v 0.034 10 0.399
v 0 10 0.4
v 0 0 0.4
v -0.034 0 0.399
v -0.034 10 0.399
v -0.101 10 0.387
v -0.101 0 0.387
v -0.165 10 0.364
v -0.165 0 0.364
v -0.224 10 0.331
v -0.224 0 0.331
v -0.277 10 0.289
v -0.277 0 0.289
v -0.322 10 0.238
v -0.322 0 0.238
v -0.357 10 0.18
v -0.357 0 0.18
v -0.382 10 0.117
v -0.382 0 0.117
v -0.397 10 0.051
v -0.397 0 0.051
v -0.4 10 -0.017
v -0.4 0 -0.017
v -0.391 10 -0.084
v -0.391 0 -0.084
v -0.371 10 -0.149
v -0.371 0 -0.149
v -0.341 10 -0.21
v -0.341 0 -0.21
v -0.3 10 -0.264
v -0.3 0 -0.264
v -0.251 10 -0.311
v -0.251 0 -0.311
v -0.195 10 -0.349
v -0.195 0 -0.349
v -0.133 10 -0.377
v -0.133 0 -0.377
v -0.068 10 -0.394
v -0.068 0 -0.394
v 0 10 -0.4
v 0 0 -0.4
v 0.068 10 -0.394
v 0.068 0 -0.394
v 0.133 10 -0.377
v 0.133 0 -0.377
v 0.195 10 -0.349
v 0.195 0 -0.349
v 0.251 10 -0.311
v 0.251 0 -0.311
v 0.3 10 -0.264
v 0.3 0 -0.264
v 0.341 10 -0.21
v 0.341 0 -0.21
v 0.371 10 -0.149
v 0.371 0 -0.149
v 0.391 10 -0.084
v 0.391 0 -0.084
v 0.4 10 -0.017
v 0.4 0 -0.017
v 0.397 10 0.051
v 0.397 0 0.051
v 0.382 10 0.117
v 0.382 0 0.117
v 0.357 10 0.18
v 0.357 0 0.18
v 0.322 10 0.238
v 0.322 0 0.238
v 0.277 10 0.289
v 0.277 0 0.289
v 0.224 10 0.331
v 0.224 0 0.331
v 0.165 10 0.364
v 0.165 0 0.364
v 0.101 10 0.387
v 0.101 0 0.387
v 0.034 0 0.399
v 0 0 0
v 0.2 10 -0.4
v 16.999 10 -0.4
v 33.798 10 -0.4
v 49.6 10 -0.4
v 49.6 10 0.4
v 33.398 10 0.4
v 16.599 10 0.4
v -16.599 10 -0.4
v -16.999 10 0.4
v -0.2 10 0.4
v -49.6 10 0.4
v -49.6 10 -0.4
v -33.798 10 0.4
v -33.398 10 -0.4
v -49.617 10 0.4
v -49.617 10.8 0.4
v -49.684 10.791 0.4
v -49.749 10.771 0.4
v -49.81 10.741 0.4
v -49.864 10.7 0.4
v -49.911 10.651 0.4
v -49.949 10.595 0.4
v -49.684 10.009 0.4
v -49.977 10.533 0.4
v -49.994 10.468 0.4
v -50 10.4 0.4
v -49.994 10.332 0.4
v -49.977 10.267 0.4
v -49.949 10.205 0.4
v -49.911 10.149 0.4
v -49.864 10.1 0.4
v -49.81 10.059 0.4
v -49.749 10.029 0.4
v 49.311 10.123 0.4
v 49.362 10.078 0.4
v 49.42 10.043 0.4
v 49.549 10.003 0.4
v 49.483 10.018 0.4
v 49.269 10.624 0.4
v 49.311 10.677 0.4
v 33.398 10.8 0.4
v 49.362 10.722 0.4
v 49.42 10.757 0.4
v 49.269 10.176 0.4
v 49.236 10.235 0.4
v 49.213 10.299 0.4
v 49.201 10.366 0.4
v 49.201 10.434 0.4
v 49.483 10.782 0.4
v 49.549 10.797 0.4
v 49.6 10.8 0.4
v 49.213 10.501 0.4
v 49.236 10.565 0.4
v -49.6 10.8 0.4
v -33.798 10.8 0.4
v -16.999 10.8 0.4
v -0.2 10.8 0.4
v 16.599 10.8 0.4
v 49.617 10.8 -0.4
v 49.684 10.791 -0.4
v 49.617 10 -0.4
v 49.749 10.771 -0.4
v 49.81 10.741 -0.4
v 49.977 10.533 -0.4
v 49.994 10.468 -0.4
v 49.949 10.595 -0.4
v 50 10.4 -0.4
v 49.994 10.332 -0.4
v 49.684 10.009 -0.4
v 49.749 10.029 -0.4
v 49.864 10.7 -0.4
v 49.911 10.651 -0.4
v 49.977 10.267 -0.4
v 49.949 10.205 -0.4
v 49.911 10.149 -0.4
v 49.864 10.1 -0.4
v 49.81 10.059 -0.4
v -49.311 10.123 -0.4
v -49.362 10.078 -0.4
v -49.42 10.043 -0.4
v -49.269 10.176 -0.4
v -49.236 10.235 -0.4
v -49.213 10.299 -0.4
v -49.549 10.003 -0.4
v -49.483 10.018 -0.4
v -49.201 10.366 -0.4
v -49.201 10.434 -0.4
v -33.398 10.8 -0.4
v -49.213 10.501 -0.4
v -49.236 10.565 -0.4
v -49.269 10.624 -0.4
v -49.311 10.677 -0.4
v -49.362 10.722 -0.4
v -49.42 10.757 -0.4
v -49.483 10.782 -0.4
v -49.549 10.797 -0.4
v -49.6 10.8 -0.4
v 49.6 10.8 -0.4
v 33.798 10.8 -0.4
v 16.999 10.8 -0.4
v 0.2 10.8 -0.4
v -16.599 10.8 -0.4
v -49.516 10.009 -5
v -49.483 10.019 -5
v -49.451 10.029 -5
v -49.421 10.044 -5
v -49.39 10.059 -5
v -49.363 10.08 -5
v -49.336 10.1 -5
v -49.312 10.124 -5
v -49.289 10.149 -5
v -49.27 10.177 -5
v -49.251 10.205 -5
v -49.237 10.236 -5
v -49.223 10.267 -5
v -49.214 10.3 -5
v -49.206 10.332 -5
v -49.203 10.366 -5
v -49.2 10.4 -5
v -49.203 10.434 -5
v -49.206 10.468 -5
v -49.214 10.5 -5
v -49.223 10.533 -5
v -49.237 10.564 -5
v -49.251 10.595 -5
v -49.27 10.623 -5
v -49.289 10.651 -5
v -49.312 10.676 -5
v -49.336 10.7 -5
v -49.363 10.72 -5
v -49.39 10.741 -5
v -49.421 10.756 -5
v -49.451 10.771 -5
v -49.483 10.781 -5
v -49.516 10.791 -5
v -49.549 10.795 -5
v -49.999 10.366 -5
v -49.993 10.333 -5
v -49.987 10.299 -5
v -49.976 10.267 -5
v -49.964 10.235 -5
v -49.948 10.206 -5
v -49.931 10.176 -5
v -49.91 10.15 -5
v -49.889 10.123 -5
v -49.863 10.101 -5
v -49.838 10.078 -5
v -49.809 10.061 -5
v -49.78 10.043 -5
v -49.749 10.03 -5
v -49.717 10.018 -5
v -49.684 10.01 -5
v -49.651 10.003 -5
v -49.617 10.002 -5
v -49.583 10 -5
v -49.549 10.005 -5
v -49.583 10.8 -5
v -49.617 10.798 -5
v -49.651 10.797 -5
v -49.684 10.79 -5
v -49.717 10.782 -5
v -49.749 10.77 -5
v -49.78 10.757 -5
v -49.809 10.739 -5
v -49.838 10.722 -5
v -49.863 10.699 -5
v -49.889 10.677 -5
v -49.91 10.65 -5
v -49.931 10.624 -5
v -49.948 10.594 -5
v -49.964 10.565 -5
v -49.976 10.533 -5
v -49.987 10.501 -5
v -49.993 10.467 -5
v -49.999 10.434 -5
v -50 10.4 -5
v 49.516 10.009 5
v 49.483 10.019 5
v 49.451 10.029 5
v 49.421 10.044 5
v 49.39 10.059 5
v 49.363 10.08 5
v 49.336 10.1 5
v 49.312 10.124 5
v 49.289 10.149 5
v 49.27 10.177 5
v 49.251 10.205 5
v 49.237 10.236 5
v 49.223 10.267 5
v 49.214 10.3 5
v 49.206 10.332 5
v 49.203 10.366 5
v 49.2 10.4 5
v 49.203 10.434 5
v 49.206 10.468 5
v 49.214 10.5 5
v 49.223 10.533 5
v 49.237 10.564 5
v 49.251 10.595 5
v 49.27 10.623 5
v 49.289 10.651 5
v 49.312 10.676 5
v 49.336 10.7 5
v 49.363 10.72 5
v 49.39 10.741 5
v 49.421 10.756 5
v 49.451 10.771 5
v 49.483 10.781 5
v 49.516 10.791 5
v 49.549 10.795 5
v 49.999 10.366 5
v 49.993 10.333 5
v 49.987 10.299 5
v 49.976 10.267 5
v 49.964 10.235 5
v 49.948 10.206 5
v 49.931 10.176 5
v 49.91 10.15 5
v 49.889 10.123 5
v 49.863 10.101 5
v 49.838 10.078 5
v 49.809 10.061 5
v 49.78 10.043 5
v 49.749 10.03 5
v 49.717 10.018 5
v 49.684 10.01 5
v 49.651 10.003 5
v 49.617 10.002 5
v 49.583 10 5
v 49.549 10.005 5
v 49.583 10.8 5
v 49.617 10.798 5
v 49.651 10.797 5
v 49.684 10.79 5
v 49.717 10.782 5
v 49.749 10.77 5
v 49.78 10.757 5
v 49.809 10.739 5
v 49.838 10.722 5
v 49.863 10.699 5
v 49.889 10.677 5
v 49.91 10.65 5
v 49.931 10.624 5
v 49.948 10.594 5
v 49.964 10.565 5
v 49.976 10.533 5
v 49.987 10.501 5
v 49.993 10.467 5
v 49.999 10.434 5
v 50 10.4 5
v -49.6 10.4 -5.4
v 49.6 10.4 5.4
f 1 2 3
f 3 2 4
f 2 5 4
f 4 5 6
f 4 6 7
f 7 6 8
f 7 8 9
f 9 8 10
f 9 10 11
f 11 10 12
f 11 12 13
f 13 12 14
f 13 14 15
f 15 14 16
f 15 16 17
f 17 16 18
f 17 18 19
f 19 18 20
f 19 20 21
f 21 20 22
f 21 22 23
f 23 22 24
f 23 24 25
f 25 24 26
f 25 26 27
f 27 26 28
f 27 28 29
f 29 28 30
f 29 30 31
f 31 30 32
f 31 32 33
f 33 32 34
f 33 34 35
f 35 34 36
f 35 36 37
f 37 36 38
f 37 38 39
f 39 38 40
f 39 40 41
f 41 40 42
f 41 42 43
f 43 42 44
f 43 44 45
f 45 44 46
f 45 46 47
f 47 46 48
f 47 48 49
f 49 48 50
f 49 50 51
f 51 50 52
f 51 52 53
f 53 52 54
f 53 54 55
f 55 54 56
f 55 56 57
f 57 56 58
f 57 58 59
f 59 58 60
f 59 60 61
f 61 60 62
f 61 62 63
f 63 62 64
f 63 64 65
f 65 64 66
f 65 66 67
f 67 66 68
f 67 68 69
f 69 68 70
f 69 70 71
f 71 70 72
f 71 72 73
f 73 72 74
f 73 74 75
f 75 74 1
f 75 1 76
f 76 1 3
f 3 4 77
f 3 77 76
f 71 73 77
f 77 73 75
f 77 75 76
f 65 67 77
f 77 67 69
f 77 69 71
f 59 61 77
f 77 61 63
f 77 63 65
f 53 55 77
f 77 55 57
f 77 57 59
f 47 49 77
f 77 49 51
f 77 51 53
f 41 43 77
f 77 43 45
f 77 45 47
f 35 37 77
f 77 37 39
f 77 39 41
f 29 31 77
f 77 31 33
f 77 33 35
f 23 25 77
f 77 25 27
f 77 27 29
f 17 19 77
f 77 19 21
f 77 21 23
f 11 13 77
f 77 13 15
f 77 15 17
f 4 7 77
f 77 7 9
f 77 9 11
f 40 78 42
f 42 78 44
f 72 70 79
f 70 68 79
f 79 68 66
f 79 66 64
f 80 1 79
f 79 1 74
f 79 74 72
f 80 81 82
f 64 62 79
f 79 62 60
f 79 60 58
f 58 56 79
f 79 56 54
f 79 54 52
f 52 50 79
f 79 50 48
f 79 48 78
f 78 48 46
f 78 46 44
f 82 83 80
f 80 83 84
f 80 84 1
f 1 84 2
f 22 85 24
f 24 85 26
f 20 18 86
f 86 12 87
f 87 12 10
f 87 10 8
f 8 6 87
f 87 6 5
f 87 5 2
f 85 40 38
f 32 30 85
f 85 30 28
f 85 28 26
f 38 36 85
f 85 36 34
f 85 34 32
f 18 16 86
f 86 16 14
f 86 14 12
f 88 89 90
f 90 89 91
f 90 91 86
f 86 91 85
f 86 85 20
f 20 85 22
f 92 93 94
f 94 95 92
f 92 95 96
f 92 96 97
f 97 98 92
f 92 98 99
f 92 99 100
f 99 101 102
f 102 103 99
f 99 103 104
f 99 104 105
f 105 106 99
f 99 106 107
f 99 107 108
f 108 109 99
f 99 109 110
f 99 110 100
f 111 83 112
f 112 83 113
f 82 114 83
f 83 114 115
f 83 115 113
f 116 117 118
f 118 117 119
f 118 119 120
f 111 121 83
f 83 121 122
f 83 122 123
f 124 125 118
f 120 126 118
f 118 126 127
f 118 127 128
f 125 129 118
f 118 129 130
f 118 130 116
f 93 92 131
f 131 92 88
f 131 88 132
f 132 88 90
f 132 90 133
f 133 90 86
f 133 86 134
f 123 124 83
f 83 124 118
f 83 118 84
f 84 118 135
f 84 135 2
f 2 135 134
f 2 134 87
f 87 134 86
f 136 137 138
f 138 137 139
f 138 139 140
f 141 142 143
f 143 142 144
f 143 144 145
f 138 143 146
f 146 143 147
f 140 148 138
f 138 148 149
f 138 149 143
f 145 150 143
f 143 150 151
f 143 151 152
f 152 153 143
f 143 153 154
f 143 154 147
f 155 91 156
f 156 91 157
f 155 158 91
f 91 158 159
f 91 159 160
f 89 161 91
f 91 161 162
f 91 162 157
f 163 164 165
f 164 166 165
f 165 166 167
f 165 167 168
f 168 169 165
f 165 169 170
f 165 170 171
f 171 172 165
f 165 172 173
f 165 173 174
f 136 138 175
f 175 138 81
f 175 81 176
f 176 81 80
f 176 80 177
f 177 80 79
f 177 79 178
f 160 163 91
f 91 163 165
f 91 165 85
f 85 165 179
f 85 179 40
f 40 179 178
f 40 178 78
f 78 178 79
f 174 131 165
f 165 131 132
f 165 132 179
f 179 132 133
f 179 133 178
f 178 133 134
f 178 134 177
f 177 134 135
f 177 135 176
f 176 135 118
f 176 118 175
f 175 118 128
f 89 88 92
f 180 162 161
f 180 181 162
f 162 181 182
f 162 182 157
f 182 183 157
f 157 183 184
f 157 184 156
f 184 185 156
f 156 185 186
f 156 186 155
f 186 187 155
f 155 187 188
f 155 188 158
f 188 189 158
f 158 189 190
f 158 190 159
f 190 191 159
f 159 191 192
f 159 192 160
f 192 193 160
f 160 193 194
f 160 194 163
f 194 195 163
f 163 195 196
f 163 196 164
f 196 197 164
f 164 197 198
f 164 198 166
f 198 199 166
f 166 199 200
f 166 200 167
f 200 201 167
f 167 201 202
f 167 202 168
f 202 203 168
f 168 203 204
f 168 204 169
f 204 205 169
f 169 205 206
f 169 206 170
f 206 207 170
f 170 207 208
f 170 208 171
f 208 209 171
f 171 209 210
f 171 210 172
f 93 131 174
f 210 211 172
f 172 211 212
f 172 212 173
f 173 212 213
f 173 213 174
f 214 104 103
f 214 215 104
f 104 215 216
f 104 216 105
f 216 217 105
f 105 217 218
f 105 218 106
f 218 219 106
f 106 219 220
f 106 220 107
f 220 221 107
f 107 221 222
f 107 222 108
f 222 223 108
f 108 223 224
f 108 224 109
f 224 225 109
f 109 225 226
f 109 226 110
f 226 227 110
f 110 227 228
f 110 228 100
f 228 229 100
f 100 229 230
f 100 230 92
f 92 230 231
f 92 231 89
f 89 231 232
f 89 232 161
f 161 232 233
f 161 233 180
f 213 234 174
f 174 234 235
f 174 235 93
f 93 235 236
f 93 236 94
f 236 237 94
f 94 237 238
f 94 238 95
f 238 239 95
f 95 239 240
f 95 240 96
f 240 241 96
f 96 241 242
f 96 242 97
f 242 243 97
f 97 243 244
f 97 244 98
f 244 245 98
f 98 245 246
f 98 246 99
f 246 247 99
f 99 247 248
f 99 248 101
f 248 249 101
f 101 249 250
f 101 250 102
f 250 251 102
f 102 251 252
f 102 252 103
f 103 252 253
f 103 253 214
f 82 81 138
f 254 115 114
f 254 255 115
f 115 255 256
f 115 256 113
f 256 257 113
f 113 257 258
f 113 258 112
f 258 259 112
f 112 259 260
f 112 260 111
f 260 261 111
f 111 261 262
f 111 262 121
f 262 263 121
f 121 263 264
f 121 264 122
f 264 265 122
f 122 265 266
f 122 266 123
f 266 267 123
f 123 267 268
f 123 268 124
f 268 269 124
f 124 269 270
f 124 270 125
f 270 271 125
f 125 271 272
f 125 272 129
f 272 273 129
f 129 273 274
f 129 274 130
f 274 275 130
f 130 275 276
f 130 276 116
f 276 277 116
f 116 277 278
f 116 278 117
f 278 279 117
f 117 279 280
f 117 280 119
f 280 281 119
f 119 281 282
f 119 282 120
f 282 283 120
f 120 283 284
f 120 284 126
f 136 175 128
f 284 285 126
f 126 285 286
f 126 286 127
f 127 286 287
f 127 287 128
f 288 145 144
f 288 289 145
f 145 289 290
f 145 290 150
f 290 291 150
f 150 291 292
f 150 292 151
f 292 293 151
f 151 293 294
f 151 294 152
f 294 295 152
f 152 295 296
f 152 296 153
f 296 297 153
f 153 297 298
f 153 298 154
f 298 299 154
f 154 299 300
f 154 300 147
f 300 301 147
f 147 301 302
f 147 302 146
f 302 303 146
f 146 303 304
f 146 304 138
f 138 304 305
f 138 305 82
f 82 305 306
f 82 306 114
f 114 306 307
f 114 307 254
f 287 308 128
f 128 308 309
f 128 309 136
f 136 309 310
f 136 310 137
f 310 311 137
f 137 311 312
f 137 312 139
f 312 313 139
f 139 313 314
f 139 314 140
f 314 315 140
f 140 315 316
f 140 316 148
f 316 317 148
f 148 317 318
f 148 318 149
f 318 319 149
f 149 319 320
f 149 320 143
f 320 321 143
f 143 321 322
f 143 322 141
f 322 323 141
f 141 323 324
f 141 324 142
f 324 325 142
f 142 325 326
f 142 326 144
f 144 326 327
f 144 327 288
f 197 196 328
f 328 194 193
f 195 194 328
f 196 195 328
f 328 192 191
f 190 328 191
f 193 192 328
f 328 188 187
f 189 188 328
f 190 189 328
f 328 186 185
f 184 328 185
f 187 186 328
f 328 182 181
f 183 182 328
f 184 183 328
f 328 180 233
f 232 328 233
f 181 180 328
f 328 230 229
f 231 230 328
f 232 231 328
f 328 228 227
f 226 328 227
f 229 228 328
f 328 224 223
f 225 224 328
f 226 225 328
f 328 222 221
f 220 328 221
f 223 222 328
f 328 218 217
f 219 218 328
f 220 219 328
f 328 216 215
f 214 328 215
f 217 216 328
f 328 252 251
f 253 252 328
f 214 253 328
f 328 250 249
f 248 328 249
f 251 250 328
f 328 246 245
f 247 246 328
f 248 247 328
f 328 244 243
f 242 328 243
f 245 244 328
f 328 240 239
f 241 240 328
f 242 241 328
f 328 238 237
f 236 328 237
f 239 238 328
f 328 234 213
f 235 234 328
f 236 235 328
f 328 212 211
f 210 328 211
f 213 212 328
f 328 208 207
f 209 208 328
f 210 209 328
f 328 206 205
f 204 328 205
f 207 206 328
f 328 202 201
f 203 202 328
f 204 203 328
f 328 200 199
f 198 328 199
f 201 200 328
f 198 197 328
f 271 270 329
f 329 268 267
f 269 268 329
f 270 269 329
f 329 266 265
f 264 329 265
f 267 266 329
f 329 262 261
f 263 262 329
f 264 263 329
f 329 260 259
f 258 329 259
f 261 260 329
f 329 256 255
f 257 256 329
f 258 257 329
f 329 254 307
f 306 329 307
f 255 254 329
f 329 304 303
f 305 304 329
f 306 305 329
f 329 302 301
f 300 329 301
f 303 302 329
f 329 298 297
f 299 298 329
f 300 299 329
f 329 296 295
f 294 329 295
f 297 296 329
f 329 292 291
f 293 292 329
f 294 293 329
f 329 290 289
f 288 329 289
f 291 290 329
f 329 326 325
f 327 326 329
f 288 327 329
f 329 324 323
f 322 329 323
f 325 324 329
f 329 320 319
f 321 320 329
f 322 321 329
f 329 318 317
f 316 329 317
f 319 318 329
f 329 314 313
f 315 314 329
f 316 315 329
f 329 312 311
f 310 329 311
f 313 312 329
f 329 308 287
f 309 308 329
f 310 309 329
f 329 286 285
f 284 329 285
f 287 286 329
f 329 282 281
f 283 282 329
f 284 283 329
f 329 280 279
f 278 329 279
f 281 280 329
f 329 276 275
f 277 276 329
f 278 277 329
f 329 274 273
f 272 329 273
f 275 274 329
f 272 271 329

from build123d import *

# Parameters (mm, degrees)
SKETCH_1_R      = 0.4
EXTRUDE_1_DEPTH = 10
SKETCH_2_W      = 100
SKETCH_2_H      = 0.8
EXTRUDE_2_DEPTH = 0.8
FILLET_1_R      = 0.4
SKETCH_3_R      = 0.4
EXTRUDE_3_DEPTH = 5
SKETCH_4_R      = 0.4
EXTRUDE_4_DEPTH = 5
CHAMFER_1_SIZE  = 0.4


with BuildPart() as part:
    # 草图1 → 凸台-拉伸1 (new body)
    with BuildSketch(Plane(origin=(0, 0, 0), x_dir=(1, 0, 0), z_dir=(0, 1, 0))):
        with Locations(Location((0, 0, 0), (0, 0, 270))):
            Circle(SKETCH_1_R)
    extrude(amount=EXTRUDE_1_DEPTH)

    # 草图2 → 凸台-拉伸2 (add)
    with BuildSketch(Plane(origin=(0, 10, 0), x_dir=(1, 0, 0), z_dir=(0, 1, 0))):
        Rectangle(SKETCH_2_W, SKETCH_2_H)
    extrude(amount=EXTRUDE_2_DEPTH)

    # 圆角1
    fillet_1_edges = [part.edges().sort_by_distance(p)[0] for p in [
        (50, 10, 0),
        (50, 10.8, 0),
        (-50, 10, 0),
        (-50, 10.8, 0),
    ]]
    fillet(fillet_1_edges, radius=FILLET_1_R - 0.0001)  # a hair under: the kernel refuses the full size

    # 草图3 → 凸台-拉伸3 (add)
    with BuildSketch(Plane.XY.offset(0.4)):
        with Locations((49.6, 10.4)):
            Circle(SKETCH_3_R)
    extrude(amount=EXTRUDE_3_DEPTH)

    # 草图4 → 凸台-拉伸4 (add)
    with BuildSketch(Plane(origin=(0, 0, -0.4), x_dir=(-1, 0, 0), z_dir=(0, 0, -1))):
        with Locations((49.6, 10.4)):
            Circle(SKETCH_4_R)
    extrude(amount=EXTRUDE_4_DEPTH)

    # 倒角1
    chamfer_1_edges = [part.edges().sort_by_distance(p)[0] for p in [
        (49.2, 10.4, 5.4),
        (-49.2, 10.4, -5.4),
    ]]
    chamfer(chamfer_1_edges, length=CHAMFER_1_SIZE)


solid = part.part
